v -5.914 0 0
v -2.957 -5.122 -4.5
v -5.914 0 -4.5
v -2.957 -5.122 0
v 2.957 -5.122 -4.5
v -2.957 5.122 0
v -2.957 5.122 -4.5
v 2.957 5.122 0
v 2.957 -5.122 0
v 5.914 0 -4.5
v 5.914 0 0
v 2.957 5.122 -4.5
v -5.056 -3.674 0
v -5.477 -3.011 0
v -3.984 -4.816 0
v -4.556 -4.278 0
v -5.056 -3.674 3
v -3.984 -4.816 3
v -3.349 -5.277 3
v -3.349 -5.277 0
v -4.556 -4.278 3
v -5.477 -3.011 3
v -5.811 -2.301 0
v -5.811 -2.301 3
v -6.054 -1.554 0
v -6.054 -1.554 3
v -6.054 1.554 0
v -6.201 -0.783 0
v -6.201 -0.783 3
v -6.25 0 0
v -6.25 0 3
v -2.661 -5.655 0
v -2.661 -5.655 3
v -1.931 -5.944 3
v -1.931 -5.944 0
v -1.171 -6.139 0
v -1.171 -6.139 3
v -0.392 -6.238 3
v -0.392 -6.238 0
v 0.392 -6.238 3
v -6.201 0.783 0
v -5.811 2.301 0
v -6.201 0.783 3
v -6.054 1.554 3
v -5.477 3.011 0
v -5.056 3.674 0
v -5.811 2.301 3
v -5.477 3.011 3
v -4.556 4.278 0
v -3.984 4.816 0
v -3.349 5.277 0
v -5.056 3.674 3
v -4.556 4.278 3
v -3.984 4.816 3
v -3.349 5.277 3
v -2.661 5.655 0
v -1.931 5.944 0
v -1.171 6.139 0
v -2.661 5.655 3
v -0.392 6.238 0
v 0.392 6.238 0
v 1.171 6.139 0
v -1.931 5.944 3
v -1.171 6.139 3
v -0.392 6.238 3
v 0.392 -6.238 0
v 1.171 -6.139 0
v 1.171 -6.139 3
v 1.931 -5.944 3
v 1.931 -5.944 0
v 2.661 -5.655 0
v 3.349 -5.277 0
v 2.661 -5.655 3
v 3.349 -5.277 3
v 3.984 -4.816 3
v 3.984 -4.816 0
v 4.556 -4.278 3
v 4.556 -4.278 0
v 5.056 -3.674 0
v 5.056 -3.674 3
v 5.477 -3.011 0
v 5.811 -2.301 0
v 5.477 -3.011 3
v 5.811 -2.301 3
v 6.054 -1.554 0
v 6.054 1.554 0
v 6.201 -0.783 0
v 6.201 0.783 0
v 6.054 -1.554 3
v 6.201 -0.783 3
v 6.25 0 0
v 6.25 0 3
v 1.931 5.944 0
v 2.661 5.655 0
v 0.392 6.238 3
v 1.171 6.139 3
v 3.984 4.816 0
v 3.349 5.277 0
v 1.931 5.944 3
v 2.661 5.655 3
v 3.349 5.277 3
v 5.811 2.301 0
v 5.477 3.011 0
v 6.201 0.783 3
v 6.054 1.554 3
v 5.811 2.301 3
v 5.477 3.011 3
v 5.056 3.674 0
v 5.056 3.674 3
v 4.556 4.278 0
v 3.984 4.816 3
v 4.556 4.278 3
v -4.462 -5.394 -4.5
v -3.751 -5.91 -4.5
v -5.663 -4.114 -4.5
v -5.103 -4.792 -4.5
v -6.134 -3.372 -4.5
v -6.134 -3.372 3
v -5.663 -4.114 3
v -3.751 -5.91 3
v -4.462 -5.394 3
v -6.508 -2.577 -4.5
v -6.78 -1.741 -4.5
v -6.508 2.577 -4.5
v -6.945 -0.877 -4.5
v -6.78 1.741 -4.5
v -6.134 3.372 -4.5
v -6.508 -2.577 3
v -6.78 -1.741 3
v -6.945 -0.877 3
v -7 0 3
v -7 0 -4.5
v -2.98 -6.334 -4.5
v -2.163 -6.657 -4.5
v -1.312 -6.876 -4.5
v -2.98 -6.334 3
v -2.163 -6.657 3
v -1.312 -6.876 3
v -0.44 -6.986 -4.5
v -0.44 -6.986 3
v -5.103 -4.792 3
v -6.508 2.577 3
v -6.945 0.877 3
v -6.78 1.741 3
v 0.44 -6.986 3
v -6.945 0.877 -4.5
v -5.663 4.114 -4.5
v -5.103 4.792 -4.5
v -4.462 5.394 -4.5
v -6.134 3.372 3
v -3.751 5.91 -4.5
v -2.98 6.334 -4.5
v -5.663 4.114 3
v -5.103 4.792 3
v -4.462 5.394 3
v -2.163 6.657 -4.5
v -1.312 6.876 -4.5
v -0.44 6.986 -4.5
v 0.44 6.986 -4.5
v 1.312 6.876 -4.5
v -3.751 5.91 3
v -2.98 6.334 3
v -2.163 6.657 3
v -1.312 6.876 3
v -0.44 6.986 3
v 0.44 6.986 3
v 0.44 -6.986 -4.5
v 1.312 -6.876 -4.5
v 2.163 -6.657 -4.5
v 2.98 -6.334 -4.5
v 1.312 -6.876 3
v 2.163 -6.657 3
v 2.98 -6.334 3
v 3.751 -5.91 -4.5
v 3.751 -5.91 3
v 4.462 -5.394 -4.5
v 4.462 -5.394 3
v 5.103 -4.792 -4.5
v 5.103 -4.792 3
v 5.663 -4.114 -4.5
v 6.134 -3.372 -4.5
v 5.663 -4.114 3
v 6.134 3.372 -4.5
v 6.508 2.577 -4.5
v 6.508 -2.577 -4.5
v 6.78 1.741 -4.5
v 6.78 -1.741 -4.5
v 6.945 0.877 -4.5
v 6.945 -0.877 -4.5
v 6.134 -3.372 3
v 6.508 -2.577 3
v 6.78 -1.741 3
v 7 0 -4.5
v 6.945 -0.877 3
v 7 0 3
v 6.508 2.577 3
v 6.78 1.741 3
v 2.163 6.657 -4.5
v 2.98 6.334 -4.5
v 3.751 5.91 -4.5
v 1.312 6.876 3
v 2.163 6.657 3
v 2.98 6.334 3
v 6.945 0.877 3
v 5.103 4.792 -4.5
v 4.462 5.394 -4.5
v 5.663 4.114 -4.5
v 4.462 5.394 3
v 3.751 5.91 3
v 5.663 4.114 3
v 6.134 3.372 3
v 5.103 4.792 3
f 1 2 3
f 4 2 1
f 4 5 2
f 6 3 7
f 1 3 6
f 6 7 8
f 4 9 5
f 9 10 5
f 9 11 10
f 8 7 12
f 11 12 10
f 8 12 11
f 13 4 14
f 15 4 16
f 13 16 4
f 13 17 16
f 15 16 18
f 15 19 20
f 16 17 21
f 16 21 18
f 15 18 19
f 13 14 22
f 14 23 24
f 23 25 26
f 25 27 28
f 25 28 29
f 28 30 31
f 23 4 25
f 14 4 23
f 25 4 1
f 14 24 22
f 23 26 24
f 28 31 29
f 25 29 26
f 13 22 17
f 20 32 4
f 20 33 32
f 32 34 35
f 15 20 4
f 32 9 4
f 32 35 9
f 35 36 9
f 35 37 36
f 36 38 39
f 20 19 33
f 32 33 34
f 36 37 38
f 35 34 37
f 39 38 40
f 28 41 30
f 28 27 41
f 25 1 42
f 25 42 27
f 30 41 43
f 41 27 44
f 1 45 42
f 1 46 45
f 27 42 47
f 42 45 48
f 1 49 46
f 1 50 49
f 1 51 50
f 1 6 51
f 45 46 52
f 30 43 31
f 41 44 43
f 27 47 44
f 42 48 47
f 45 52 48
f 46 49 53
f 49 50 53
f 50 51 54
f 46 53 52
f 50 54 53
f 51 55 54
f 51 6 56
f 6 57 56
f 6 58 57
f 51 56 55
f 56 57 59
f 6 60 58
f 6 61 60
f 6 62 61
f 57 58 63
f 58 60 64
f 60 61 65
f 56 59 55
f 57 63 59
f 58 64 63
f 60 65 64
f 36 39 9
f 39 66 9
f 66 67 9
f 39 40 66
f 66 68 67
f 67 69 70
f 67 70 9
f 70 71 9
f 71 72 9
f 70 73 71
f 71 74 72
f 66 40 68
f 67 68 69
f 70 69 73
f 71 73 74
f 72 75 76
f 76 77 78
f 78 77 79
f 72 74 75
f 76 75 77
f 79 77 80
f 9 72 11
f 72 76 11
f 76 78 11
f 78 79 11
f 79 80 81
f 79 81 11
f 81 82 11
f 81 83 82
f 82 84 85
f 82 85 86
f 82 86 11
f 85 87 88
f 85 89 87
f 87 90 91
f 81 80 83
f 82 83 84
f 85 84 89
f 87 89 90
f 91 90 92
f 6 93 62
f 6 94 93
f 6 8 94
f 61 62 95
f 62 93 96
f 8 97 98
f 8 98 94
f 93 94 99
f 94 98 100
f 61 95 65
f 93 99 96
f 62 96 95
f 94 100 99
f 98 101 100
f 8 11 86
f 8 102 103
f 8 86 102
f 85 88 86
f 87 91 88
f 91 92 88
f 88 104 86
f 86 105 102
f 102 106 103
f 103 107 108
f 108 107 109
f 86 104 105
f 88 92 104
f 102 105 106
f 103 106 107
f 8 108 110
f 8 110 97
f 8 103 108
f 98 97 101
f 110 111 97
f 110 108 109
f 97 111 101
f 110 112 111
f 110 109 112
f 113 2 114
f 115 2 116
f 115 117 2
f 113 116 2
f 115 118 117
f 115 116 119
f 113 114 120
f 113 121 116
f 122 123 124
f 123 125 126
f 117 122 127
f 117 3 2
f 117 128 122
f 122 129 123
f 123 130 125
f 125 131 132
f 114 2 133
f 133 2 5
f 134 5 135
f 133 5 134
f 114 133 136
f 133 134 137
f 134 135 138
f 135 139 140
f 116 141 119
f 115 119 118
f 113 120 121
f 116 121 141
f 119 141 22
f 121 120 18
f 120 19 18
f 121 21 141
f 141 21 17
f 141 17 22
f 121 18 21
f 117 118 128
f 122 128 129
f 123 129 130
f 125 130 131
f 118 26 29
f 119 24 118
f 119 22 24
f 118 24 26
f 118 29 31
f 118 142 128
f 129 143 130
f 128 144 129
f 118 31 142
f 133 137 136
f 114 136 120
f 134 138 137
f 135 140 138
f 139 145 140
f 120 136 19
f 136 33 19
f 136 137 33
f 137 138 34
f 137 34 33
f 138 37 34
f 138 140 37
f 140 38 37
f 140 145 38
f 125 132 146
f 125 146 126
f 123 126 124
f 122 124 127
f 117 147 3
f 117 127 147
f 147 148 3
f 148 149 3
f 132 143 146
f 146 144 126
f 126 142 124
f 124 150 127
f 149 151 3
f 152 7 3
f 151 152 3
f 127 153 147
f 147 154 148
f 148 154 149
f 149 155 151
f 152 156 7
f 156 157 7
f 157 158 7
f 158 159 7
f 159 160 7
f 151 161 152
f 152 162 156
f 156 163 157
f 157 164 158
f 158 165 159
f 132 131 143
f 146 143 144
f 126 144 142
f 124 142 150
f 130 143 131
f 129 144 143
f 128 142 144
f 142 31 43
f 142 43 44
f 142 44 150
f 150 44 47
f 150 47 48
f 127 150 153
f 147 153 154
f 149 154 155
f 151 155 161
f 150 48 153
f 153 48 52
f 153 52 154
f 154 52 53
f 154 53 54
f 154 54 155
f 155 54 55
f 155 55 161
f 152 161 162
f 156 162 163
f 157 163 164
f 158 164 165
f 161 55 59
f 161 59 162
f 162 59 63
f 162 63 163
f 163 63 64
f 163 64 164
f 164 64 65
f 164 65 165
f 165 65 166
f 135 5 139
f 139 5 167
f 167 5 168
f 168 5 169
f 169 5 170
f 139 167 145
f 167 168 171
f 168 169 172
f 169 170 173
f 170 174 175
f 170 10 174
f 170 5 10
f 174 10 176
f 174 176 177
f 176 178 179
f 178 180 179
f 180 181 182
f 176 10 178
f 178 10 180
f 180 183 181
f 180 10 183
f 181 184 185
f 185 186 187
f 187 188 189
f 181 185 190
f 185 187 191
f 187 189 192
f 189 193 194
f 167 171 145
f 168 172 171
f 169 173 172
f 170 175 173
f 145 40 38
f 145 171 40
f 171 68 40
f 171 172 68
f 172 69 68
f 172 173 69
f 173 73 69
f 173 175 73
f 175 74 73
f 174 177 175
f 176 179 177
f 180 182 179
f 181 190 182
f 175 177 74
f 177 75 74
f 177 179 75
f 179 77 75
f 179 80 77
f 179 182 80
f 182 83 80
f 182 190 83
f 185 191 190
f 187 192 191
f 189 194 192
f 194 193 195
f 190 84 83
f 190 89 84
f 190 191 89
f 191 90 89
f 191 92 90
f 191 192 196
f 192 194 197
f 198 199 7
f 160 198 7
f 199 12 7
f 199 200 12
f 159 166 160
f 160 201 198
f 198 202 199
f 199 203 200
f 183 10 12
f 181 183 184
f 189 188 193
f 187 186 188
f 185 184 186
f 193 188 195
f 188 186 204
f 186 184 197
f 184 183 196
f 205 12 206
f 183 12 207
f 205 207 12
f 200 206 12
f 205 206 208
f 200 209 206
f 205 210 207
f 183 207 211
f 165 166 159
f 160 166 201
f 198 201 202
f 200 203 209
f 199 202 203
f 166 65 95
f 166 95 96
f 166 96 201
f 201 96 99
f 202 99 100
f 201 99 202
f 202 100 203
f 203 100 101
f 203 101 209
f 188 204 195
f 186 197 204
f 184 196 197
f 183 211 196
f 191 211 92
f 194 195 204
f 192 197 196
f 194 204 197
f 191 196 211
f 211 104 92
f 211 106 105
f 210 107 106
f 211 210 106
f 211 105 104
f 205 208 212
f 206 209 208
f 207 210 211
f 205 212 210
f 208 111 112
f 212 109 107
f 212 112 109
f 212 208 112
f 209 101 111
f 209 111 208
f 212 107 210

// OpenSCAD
$fn = 50;

difference() {
	union() {
		translate(v = [0, 0, -4.5]) {
			cylinder(h = 7.5, r = 7.0);
		}
	}
	union() {
		translate(v = [0, 0, 0]) {
			rotate(a = [0, 0, 0]) {
				difference() {
					union() {
						translate(v = [0, 0, -5]) {
							linear_extrude(height = 5) {
								polygon(points = [[5.914249999999999, 0.0], [2.957125, 5.1218907443321156], [-2.9571249999999982, 5.1218907443321156], [-5.914249999999999, 7.242867331857232e-16], [-2.9571250000000022, -5.121890744332115], [2.9571249999999956, -5.121890744332118]]);
							}
						}
					}
					union();
				}
			}
		}
		#cylinder(h = 3, r = 6.25);
		#translate(v = [0, 0, -100.0]) {
			cylinder(h = 200, r = 3.25);
		}
	}
}
